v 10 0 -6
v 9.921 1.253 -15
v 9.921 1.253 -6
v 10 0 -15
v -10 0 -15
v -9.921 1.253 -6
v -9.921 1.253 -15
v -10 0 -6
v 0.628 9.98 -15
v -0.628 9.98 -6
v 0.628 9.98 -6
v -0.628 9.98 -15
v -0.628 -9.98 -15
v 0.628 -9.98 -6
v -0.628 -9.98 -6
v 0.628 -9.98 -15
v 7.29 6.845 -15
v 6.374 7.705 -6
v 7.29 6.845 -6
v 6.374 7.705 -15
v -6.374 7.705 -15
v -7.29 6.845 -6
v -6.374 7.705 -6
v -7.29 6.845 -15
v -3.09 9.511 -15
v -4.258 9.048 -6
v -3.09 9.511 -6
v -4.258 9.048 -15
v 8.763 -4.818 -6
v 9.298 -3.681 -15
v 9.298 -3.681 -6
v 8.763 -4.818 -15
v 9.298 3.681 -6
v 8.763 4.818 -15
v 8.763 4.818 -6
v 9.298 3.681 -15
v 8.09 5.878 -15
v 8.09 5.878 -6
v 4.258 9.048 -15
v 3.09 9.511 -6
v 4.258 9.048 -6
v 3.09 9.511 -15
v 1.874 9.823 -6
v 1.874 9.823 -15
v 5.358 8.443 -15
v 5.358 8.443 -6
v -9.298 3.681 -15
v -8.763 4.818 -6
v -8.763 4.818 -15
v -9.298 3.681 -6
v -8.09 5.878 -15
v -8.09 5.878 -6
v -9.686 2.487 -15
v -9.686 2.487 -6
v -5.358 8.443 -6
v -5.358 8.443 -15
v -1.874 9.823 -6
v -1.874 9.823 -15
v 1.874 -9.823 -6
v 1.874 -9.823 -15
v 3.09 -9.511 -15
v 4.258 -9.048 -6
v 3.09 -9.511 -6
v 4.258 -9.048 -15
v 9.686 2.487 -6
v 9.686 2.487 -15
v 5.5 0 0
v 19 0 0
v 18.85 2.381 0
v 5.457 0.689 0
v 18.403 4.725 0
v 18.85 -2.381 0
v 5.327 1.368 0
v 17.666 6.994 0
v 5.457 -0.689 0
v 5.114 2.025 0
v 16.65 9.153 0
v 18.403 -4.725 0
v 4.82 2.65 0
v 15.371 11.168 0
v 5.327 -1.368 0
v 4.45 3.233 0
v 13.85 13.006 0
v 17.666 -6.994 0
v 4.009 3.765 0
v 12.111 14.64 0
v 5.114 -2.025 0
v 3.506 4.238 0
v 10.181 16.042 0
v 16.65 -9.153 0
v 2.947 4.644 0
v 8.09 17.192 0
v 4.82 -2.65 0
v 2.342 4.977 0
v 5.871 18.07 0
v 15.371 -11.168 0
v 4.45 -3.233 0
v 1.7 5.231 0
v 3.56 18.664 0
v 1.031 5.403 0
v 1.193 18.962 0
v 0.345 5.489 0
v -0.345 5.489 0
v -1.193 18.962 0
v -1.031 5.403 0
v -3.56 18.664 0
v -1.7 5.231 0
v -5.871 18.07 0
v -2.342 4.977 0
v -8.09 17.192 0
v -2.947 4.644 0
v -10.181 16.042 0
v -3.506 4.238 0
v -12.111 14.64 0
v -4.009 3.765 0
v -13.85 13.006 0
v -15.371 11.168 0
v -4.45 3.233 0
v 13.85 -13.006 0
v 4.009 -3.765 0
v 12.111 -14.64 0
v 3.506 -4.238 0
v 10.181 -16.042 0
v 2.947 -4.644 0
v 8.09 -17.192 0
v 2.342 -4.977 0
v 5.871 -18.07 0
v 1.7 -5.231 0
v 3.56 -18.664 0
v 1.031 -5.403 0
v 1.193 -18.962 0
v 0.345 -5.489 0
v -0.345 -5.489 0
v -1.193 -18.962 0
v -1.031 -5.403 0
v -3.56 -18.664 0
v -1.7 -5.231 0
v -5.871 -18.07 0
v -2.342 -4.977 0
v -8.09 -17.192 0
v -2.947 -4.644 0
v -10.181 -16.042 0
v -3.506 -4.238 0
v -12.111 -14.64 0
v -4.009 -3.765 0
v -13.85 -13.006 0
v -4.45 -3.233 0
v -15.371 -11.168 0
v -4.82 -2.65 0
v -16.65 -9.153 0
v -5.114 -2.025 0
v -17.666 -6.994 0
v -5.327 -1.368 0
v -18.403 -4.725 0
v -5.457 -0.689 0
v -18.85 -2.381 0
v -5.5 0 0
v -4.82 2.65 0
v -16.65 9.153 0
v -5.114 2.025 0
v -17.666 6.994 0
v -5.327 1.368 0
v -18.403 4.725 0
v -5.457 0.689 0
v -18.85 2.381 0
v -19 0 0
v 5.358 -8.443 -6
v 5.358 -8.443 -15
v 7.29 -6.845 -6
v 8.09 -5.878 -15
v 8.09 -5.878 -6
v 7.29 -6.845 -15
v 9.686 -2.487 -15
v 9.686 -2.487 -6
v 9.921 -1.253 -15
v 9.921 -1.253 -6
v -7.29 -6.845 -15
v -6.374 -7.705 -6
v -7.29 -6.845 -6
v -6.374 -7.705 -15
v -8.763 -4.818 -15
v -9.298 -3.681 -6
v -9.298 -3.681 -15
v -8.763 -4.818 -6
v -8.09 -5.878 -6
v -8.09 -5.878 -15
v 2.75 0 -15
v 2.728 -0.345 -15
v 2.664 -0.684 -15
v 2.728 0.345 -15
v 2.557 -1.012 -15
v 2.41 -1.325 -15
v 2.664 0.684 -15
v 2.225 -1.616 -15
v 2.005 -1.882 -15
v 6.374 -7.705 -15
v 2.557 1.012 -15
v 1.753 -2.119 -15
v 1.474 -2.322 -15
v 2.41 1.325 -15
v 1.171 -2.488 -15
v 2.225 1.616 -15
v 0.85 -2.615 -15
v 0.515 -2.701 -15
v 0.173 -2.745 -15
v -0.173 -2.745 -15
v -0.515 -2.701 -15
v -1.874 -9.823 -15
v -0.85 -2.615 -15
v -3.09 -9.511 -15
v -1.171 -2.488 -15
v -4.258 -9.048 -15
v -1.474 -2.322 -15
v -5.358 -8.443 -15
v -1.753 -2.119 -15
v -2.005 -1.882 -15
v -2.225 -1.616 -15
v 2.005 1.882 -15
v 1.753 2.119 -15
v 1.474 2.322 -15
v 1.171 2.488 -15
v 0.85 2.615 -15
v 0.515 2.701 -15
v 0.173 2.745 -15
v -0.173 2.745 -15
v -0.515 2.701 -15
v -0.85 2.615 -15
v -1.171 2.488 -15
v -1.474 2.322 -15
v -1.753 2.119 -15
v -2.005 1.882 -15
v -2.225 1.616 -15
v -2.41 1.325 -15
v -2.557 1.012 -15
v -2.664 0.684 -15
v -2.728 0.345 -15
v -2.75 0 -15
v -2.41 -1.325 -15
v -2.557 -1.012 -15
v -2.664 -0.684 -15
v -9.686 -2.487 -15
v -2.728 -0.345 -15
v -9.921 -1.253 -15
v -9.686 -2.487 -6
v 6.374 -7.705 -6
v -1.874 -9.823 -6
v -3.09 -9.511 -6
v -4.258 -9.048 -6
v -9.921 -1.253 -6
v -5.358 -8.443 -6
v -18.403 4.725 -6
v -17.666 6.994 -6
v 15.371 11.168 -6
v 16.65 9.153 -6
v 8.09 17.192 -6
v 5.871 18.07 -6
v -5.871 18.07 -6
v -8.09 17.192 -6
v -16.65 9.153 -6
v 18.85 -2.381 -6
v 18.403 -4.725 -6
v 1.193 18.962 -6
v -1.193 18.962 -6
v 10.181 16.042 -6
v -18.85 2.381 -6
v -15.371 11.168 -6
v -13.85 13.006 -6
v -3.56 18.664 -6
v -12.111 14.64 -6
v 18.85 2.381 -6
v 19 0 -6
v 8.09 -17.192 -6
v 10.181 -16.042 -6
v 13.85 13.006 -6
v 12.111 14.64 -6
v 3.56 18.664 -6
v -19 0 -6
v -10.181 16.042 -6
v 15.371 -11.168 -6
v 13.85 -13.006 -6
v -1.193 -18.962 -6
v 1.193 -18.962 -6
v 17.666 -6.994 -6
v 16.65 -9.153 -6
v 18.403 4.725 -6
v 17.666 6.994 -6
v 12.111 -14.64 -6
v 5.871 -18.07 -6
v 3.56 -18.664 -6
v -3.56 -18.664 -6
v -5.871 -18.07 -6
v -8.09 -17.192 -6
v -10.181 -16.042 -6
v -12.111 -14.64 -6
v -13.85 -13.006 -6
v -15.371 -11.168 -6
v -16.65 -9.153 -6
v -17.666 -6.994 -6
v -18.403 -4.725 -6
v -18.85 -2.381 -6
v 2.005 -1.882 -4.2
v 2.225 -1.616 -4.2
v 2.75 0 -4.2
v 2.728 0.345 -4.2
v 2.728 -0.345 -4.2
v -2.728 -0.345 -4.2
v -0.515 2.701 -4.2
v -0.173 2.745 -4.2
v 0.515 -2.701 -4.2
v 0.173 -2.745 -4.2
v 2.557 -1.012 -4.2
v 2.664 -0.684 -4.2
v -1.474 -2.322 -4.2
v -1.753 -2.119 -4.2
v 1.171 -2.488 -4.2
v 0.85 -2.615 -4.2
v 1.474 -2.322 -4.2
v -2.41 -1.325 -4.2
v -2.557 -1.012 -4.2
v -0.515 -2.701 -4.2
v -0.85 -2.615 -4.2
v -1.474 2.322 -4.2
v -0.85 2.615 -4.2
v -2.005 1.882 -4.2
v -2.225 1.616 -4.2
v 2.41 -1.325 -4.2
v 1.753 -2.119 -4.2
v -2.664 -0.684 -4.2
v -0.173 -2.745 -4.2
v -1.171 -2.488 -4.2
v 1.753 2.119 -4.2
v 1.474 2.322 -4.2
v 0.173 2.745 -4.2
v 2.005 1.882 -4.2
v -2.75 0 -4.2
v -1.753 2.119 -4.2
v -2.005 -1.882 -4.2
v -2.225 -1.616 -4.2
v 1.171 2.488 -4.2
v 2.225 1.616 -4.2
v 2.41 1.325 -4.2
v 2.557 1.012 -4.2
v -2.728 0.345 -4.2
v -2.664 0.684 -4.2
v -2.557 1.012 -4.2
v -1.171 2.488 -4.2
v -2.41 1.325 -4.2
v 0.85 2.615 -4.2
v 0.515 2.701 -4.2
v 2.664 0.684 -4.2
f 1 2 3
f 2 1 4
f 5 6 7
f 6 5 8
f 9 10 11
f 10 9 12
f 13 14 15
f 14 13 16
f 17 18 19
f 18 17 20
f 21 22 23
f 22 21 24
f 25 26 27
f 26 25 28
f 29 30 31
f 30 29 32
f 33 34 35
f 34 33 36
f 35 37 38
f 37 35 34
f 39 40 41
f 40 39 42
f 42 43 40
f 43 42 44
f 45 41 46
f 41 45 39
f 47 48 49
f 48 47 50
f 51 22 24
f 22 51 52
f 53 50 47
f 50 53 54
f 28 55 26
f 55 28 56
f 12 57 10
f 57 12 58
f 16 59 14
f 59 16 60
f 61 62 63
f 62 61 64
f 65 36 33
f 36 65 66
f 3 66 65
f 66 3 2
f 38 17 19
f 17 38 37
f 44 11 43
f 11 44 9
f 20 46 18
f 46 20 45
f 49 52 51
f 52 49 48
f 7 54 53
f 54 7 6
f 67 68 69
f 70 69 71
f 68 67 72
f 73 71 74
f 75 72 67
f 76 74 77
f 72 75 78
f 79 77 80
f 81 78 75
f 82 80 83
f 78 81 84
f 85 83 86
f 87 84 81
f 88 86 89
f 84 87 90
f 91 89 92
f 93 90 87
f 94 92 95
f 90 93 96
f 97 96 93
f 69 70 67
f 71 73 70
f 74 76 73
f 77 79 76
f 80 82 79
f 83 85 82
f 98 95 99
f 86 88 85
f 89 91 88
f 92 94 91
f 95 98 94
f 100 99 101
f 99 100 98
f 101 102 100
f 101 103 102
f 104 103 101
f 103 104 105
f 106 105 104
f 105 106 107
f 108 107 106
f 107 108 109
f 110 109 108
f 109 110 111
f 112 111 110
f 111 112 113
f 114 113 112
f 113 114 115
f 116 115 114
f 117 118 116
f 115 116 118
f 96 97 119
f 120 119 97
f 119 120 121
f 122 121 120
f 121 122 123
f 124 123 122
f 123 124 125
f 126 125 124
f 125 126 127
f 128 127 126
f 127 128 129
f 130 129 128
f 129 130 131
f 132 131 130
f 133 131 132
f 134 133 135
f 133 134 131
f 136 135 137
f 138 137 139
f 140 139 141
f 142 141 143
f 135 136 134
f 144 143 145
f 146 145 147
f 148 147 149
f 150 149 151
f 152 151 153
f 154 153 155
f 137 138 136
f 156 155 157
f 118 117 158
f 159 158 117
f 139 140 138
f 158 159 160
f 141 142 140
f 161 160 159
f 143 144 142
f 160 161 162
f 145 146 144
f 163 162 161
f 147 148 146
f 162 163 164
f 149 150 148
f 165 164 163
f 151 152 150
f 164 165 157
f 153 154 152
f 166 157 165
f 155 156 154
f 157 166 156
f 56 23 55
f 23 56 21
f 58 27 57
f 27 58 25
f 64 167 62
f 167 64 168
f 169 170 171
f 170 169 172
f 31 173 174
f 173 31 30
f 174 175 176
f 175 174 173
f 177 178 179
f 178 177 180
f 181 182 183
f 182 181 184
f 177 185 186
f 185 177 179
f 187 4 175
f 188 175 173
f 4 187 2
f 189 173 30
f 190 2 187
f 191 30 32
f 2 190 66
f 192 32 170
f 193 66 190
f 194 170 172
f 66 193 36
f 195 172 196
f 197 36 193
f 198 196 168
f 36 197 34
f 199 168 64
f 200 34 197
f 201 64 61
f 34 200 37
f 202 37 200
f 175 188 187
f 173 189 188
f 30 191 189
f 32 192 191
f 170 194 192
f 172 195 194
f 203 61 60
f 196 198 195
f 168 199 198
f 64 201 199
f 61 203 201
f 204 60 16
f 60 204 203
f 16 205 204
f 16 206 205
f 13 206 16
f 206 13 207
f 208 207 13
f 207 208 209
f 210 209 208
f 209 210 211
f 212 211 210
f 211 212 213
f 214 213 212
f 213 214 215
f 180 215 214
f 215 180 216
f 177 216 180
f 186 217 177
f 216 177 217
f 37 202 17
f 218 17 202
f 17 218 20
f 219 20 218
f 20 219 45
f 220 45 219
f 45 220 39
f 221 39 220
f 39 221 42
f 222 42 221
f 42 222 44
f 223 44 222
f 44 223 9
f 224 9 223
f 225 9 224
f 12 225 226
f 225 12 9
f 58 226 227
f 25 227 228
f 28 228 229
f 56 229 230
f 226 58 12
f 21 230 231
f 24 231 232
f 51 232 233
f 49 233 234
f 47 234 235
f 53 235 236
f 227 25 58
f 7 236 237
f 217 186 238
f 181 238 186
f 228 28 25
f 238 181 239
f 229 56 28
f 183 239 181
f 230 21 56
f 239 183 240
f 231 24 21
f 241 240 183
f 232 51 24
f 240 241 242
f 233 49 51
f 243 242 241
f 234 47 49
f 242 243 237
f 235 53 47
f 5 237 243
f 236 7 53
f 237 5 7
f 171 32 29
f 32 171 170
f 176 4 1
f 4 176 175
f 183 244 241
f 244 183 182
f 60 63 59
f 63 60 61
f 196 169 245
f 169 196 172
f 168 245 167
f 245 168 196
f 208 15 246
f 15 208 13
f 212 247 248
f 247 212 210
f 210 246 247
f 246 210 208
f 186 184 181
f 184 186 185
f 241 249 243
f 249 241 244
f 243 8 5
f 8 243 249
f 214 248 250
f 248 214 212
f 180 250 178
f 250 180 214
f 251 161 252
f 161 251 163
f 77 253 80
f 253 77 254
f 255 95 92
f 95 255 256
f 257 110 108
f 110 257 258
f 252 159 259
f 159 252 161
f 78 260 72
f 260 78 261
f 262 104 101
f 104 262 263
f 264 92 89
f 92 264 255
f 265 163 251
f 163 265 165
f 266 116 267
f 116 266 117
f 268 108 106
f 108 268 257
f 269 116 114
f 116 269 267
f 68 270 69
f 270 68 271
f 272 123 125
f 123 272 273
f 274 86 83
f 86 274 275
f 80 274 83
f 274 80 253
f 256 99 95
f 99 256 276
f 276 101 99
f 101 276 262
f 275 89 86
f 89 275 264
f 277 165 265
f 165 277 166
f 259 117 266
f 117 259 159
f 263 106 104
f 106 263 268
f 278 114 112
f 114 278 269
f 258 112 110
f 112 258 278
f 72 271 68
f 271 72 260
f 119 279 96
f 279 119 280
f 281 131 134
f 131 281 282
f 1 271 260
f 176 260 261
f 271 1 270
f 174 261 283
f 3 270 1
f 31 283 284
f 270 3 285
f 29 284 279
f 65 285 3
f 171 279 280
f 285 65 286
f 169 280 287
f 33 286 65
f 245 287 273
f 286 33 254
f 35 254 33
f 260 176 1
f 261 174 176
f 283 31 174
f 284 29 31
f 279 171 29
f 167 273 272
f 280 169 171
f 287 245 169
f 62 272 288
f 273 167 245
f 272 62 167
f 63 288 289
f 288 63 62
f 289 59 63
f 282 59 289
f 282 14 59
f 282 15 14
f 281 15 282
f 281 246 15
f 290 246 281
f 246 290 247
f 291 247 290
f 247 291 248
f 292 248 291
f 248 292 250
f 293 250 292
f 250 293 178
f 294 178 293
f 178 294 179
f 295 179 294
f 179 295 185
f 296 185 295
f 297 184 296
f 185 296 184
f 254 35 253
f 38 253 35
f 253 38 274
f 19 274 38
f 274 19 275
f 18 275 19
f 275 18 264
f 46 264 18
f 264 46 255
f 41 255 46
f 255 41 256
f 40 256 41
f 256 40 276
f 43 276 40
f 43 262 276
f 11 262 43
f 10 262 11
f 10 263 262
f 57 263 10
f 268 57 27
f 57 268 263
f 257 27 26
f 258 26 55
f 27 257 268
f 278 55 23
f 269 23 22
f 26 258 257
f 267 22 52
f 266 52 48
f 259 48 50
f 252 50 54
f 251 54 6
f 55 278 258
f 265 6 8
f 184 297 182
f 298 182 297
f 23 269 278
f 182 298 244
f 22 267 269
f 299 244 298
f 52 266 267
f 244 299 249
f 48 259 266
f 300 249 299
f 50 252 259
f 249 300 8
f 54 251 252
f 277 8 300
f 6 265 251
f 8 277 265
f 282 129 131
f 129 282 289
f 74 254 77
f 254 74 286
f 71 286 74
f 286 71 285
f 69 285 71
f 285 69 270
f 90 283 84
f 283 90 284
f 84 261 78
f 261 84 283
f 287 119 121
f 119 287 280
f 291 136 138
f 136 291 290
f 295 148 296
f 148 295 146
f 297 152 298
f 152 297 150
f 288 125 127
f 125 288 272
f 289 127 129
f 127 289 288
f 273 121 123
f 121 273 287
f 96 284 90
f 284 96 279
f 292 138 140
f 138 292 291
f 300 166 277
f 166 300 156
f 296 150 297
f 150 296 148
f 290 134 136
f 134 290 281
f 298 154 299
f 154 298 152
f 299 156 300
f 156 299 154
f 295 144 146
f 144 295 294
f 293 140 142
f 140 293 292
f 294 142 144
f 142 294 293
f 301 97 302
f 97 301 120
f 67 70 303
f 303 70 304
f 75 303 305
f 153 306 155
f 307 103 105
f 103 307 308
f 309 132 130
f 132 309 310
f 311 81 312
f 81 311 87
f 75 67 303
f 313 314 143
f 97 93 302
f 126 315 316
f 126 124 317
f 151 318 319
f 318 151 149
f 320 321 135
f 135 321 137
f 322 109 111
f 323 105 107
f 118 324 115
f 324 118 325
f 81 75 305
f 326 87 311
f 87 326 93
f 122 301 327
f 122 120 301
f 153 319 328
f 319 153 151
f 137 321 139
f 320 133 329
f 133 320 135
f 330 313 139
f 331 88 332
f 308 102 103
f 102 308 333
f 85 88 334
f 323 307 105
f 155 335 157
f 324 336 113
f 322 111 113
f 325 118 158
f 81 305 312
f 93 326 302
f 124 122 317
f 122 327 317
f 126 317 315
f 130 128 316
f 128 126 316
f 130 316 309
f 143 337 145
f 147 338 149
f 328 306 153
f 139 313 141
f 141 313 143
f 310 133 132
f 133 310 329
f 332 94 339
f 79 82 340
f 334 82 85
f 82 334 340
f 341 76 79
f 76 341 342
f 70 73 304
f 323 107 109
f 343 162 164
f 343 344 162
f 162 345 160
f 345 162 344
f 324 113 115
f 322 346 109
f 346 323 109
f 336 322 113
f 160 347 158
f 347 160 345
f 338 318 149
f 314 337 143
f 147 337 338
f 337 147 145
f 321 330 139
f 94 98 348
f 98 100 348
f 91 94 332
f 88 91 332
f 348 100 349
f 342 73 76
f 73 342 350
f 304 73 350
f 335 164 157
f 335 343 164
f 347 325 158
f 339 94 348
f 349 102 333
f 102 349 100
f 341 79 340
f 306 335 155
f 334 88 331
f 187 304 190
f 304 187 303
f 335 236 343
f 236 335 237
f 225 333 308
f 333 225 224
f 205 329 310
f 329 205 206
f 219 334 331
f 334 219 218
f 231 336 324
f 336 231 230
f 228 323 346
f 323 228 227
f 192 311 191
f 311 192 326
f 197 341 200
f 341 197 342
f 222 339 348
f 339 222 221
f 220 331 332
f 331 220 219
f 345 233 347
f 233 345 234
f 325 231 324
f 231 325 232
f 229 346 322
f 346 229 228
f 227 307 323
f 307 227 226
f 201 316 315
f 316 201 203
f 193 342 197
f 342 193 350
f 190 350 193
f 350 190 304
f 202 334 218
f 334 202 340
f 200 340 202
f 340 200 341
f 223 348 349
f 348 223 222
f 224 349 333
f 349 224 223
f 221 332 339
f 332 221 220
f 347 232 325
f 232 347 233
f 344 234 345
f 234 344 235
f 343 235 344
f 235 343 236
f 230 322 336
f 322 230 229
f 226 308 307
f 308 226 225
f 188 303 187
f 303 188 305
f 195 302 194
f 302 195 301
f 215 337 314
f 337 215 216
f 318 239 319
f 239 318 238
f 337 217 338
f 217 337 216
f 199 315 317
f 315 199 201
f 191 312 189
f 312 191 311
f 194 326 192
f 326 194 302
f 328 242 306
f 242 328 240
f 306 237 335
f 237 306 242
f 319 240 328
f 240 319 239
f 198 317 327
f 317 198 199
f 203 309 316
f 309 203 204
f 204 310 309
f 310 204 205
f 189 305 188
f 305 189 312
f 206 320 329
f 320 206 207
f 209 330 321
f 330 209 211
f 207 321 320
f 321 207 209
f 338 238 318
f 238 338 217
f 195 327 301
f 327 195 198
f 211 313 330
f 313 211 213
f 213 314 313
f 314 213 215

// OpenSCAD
$fn = 50;


difference() {
	union() {
		translate(v = [0, 0, -15.0000000000]) {
			cylinder(h = 15, r = 10.0000000000);
		}
		translate(v = [0, 0, -6.0000000000]) {
			cylinder(h = 6, r = 19.0000000000);
		}
	}
	union() {
		translate(v = [0, 0, 0]) {
			rotate(a = [0, 0, 0]) {
				difference() {
					union() {
						#translate(v = [0, 0, -15.0000000000]) {
							cylinder(h = 15, r = 2.2500000000);
						}
						#translate(v = [0, 0, -4.2000000000]) {
							cylinder(h = 4.2000000000, r = 10.0000000000, r1 = 2.7500000000, r2 = 5.5000000000);
						}
						#translate(v = [0, 0, -15.0000000000]) {
							cylinder(h = 15, r = 2.7500000000);
						}
						#translate(v = [0, 0, -15.0000000000]) {
							cylinder(h = 15, r = 2.2500000000);
						}
					}
					union();
				}
			}
		}
	}
}
